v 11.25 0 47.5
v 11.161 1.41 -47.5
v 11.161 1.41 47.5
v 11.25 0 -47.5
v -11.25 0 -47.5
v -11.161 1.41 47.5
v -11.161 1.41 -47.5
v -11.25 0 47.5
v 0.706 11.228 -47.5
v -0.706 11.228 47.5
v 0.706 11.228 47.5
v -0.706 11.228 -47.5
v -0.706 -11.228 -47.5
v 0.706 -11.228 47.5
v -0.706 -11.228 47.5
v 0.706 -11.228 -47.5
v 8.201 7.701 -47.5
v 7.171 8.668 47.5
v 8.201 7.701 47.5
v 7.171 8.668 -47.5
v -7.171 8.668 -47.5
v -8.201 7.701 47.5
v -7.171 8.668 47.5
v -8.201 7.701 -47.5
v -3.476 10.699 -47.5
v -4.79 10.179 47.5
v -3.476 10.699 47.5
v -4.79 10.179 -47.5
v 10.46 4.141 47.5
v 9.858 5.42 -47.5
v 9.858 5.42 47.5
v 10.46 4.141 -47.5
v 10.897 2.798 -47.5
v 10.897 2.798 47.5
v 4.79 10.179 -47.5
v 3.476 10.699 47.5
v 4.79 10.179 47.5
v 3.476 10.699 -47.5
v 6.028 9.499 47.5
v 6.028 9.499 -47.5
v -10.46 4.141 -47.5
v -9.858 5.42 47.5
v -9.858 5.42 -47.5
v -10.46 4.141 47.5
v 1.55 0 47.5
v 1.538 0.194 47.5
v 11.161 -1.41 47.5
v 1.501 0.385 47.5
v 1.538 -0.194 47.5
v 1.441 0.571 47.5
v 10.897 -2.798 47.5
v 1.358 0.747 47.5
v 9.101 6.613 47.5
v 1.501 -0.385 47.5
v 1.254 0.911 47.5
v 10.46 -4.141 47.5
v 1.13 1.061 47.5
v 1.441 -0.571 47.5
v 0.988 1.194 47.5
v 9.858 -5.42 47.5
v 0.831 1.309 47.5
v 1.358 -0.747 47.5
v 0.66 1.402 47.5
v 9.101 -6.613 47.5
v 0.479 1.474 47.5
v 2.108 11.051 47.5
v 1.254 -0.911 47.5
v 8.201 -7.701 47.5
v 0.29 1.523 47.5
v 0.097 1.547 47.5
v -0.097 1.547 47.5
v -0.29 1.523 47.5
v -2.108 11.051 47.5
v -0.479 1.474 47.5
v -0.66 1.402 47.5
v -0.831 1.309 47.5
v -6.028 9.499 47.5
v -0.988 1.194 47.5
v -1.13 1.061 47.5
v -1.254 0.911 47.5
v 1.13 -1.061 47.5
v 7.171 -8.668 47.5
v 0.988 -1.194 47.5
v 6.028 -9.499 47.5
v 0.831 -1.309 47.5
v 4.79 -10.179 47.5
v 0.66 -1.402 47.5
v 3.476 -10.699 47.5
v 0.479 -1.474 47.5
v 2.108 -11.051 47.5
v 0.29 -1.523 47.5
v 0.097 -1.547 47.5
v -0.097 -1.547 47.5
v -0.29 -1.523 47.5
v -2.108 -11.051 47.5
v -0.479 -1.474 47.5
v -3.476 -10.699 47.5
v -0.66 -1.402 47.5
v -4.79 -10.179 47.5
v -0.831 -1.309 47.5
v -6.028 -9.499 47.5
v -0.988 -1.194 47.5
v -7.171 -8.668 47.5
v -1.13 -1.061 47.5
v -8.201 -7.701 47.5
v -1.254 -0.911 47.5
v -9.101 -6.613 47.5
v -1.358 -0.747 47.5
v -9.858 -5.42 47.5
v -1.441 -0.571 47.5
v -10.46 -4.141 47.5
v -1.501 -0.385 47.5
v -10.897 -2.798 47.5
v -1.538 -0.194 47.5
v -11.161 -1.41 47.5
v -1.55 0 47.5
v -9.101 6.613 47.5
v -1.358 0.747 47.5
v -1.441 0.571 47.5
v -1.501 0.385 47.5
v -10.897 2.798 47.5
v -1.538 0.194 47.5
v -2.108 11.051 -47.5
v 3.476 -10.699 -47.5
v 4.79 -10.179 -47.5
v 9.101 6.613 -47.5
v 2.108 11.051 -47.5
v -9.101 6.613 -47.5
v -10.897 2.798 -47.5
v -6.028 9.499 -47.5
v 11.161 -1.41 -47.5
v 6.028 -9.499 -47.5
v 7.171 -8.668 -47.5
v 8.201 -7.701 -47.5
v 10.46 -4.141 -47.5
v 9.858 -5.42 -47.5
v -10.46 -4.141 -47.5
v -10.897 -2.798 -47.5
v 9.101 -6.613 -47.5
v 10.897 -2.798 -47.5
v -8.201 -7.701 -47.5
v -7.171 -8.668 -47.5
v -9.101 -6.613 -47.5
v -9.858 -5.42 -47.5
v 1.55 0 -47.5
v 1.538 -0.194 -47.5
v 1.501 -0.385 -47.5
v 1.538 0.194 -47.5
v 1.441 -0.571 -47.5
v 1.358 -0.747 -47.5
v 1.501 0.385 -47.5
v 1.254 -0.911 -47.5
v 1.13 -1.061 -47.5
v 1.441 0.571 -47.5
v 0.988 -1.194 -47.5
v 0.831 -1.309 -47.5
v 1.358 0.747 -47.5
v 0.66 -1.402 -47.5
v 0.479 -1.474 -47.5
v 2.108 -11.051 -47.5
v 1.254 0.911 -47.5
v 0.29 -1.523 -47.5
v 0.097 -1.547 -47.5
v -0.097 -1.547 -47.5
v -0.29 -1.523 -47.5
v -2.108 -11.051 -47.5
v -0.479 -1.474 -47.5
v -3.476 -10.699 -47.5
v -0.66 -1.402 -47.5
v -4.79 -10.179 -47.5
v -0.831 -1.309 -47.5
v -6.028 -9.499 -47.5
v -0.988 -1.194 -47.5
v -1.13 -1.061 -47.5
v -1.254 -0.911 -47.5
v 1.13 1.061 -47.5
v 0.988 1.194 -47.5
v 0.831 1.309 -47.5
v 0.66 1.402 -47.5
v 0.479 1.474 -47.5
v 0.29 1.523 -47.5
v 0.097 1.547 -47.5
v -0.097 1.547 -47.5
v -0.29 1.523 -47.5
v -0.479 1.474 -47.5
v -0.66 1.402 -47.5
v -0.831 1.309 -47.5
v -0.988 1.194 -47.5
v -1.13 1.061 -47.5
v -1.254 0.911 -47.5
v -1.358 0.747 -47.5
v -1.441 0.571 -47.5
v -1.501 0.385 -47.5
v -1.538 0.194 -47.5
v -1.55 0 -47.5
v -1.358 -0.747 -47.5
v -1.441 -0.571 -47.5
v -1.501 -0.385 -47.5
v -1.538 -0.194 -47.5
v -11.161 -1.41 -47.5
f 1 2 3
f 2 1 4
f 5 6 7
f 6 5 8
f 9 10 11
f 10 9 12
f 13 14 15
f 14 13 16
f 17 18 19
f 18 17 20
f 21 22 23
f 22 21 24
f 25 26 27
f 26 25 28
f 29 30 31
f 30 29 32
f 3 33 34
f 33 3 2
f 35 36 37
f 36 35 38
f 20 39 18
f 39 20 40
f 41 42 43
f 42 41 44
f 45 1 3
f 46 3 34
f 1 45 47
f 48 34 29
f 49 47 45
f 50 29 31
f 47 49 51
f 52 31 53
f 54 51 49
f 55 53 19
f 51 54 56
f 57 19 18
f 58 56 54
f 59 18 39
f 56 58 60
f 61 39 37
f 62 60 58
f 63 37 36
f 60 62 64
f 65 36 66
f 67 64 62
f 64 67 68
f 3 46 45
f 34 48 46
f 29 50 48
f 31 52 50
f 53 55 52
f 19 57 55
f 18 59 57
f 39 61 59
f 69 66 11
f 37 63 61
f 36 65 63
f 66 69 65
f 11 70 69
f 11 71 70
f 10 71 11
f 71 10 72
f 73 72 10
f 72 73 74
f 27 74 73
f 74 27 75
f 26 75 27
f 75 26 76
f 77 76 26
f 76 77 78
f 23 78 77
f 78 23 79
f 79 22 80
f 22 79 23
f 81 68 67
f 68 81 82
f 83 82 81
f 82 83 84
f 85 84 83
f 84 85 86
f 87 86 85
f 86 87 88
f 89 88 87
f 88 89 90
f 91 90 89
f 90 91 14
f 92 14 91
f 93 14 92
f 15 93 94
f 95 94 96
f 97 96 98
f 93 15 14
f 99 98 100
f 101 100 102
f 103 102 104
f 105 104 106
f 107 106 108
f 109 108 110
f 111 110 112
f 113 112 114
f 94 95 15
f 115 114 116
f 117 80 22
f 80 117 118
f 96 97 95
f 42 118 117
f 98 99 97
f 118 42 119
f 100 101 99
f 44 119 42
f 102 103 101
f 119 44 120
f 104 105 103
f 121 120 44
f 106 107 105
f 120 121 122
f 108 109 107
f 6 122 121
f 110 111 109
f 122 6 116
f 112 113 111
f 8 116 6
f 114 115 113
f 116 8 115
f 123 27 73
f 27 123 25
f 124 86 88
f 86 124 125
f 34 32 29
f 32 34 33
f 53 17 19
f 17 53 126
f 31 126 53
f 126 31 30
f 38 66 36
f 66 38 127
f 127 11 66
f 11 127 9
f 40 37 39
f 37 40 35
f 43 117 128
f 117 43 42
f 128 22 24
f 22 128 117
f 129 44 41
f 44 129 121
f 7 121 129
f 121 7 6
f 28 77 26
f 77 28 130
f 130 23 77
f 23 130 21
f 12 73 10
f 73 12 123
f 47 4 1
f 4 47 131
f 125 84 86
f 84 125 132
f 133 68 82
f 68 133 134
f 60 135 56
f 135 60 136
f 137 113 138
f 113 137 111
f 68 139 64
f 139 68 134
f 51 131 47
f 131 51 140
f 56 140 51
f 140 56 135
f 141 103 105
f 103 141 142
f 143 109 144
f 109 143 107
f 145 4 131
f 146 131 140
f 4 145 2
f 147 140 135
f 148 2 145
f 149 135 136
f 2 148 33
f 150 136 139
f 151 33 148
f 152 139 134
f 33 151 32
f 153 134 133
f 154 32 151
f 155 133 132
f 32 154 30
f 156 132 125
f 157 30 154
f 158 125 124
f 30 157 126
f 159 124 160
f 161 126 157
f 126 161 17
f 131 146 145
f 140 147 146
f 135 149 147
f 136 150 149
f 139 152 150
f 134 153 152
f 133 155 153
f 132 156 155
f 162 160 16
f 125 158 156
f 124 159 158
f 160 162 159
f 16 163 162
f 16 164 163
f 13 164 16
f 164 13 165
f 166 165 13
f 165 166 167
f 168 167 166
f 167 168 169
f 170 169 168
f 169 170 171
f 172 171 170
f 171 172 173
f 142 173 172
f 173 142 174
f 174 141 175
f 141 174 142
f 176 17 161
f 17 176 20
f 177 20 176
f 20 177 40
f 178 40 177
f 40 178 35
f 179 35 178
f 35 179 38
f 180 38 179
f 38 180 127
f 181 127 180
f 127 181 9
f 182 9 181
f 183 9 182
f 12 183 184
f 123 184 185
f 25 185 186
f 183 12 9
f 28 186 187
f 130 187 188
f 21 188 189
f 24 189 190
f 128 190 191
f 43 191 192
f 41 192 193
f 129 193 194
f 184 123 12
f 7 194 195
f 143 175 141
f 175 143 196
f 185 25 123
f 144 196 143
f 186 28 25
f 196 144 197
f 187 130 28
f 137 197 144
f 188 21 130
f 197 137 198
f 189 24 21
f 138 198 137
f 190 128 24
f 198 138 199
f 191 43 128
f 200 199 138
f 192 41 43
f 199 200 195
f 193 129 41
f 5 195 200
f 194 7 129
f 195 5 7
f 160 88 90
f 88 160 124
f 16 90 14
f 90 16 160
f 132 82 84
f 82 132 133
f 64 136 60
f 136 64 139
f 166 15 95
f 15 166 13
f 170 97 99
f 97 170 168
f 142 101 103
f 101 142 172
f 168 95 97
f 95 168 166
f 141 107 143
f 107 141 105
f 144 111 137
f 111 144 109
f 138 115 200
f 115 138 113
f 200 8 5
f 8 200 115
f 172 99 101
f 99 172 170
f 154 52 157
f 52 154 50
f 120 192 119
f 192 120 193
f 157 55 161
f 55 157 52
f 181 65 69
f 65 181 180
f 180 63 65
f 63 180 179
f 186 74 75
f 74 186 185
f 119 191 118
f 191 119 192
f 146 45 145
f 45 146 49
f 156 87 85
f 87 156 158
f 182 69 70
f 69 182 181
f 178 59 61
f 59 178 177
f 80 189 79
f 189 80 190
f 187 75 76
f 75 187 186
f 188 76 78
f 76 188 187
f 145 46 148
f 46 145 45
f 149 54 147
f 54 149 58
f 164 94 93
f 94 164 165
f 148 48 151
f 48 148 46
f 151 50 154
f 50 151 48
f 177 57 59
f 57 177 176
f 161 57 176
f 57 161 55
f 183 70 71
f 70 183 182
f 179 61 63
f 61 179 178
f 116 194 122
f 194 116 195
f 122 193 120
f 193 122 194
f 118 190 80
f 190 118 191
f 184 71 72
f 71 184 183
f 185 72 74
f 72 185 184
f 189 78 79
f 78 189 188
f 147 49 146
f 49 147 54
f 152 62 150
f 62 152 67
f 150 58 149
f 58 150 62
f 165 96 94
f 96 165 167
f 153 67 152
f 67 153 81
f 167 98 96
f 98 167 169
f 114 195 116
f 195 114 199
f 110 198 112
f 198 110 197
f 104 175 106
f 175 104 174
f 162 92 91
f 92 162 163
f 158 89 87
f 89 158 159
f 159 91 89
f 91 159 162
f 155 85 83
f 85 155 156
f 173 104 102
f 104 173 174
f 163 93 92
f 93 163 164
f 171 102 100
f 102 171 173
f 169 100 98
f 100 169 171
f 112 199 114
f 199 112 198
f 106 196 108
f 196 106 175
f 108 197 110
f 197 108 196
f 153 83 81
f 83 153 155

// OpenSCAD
$fn = 50;


difference() {
	union() {
		translate(v = [0, 0, -47.5000000000]) {
			cylinder(h = 95, r = 11.2500000000);
		}
	}
	union() {
		translate(v = [0, 0, -100.0000000000]) {
			cylinder(h = 200, r = 1.5500000000);
		}
	}
}
